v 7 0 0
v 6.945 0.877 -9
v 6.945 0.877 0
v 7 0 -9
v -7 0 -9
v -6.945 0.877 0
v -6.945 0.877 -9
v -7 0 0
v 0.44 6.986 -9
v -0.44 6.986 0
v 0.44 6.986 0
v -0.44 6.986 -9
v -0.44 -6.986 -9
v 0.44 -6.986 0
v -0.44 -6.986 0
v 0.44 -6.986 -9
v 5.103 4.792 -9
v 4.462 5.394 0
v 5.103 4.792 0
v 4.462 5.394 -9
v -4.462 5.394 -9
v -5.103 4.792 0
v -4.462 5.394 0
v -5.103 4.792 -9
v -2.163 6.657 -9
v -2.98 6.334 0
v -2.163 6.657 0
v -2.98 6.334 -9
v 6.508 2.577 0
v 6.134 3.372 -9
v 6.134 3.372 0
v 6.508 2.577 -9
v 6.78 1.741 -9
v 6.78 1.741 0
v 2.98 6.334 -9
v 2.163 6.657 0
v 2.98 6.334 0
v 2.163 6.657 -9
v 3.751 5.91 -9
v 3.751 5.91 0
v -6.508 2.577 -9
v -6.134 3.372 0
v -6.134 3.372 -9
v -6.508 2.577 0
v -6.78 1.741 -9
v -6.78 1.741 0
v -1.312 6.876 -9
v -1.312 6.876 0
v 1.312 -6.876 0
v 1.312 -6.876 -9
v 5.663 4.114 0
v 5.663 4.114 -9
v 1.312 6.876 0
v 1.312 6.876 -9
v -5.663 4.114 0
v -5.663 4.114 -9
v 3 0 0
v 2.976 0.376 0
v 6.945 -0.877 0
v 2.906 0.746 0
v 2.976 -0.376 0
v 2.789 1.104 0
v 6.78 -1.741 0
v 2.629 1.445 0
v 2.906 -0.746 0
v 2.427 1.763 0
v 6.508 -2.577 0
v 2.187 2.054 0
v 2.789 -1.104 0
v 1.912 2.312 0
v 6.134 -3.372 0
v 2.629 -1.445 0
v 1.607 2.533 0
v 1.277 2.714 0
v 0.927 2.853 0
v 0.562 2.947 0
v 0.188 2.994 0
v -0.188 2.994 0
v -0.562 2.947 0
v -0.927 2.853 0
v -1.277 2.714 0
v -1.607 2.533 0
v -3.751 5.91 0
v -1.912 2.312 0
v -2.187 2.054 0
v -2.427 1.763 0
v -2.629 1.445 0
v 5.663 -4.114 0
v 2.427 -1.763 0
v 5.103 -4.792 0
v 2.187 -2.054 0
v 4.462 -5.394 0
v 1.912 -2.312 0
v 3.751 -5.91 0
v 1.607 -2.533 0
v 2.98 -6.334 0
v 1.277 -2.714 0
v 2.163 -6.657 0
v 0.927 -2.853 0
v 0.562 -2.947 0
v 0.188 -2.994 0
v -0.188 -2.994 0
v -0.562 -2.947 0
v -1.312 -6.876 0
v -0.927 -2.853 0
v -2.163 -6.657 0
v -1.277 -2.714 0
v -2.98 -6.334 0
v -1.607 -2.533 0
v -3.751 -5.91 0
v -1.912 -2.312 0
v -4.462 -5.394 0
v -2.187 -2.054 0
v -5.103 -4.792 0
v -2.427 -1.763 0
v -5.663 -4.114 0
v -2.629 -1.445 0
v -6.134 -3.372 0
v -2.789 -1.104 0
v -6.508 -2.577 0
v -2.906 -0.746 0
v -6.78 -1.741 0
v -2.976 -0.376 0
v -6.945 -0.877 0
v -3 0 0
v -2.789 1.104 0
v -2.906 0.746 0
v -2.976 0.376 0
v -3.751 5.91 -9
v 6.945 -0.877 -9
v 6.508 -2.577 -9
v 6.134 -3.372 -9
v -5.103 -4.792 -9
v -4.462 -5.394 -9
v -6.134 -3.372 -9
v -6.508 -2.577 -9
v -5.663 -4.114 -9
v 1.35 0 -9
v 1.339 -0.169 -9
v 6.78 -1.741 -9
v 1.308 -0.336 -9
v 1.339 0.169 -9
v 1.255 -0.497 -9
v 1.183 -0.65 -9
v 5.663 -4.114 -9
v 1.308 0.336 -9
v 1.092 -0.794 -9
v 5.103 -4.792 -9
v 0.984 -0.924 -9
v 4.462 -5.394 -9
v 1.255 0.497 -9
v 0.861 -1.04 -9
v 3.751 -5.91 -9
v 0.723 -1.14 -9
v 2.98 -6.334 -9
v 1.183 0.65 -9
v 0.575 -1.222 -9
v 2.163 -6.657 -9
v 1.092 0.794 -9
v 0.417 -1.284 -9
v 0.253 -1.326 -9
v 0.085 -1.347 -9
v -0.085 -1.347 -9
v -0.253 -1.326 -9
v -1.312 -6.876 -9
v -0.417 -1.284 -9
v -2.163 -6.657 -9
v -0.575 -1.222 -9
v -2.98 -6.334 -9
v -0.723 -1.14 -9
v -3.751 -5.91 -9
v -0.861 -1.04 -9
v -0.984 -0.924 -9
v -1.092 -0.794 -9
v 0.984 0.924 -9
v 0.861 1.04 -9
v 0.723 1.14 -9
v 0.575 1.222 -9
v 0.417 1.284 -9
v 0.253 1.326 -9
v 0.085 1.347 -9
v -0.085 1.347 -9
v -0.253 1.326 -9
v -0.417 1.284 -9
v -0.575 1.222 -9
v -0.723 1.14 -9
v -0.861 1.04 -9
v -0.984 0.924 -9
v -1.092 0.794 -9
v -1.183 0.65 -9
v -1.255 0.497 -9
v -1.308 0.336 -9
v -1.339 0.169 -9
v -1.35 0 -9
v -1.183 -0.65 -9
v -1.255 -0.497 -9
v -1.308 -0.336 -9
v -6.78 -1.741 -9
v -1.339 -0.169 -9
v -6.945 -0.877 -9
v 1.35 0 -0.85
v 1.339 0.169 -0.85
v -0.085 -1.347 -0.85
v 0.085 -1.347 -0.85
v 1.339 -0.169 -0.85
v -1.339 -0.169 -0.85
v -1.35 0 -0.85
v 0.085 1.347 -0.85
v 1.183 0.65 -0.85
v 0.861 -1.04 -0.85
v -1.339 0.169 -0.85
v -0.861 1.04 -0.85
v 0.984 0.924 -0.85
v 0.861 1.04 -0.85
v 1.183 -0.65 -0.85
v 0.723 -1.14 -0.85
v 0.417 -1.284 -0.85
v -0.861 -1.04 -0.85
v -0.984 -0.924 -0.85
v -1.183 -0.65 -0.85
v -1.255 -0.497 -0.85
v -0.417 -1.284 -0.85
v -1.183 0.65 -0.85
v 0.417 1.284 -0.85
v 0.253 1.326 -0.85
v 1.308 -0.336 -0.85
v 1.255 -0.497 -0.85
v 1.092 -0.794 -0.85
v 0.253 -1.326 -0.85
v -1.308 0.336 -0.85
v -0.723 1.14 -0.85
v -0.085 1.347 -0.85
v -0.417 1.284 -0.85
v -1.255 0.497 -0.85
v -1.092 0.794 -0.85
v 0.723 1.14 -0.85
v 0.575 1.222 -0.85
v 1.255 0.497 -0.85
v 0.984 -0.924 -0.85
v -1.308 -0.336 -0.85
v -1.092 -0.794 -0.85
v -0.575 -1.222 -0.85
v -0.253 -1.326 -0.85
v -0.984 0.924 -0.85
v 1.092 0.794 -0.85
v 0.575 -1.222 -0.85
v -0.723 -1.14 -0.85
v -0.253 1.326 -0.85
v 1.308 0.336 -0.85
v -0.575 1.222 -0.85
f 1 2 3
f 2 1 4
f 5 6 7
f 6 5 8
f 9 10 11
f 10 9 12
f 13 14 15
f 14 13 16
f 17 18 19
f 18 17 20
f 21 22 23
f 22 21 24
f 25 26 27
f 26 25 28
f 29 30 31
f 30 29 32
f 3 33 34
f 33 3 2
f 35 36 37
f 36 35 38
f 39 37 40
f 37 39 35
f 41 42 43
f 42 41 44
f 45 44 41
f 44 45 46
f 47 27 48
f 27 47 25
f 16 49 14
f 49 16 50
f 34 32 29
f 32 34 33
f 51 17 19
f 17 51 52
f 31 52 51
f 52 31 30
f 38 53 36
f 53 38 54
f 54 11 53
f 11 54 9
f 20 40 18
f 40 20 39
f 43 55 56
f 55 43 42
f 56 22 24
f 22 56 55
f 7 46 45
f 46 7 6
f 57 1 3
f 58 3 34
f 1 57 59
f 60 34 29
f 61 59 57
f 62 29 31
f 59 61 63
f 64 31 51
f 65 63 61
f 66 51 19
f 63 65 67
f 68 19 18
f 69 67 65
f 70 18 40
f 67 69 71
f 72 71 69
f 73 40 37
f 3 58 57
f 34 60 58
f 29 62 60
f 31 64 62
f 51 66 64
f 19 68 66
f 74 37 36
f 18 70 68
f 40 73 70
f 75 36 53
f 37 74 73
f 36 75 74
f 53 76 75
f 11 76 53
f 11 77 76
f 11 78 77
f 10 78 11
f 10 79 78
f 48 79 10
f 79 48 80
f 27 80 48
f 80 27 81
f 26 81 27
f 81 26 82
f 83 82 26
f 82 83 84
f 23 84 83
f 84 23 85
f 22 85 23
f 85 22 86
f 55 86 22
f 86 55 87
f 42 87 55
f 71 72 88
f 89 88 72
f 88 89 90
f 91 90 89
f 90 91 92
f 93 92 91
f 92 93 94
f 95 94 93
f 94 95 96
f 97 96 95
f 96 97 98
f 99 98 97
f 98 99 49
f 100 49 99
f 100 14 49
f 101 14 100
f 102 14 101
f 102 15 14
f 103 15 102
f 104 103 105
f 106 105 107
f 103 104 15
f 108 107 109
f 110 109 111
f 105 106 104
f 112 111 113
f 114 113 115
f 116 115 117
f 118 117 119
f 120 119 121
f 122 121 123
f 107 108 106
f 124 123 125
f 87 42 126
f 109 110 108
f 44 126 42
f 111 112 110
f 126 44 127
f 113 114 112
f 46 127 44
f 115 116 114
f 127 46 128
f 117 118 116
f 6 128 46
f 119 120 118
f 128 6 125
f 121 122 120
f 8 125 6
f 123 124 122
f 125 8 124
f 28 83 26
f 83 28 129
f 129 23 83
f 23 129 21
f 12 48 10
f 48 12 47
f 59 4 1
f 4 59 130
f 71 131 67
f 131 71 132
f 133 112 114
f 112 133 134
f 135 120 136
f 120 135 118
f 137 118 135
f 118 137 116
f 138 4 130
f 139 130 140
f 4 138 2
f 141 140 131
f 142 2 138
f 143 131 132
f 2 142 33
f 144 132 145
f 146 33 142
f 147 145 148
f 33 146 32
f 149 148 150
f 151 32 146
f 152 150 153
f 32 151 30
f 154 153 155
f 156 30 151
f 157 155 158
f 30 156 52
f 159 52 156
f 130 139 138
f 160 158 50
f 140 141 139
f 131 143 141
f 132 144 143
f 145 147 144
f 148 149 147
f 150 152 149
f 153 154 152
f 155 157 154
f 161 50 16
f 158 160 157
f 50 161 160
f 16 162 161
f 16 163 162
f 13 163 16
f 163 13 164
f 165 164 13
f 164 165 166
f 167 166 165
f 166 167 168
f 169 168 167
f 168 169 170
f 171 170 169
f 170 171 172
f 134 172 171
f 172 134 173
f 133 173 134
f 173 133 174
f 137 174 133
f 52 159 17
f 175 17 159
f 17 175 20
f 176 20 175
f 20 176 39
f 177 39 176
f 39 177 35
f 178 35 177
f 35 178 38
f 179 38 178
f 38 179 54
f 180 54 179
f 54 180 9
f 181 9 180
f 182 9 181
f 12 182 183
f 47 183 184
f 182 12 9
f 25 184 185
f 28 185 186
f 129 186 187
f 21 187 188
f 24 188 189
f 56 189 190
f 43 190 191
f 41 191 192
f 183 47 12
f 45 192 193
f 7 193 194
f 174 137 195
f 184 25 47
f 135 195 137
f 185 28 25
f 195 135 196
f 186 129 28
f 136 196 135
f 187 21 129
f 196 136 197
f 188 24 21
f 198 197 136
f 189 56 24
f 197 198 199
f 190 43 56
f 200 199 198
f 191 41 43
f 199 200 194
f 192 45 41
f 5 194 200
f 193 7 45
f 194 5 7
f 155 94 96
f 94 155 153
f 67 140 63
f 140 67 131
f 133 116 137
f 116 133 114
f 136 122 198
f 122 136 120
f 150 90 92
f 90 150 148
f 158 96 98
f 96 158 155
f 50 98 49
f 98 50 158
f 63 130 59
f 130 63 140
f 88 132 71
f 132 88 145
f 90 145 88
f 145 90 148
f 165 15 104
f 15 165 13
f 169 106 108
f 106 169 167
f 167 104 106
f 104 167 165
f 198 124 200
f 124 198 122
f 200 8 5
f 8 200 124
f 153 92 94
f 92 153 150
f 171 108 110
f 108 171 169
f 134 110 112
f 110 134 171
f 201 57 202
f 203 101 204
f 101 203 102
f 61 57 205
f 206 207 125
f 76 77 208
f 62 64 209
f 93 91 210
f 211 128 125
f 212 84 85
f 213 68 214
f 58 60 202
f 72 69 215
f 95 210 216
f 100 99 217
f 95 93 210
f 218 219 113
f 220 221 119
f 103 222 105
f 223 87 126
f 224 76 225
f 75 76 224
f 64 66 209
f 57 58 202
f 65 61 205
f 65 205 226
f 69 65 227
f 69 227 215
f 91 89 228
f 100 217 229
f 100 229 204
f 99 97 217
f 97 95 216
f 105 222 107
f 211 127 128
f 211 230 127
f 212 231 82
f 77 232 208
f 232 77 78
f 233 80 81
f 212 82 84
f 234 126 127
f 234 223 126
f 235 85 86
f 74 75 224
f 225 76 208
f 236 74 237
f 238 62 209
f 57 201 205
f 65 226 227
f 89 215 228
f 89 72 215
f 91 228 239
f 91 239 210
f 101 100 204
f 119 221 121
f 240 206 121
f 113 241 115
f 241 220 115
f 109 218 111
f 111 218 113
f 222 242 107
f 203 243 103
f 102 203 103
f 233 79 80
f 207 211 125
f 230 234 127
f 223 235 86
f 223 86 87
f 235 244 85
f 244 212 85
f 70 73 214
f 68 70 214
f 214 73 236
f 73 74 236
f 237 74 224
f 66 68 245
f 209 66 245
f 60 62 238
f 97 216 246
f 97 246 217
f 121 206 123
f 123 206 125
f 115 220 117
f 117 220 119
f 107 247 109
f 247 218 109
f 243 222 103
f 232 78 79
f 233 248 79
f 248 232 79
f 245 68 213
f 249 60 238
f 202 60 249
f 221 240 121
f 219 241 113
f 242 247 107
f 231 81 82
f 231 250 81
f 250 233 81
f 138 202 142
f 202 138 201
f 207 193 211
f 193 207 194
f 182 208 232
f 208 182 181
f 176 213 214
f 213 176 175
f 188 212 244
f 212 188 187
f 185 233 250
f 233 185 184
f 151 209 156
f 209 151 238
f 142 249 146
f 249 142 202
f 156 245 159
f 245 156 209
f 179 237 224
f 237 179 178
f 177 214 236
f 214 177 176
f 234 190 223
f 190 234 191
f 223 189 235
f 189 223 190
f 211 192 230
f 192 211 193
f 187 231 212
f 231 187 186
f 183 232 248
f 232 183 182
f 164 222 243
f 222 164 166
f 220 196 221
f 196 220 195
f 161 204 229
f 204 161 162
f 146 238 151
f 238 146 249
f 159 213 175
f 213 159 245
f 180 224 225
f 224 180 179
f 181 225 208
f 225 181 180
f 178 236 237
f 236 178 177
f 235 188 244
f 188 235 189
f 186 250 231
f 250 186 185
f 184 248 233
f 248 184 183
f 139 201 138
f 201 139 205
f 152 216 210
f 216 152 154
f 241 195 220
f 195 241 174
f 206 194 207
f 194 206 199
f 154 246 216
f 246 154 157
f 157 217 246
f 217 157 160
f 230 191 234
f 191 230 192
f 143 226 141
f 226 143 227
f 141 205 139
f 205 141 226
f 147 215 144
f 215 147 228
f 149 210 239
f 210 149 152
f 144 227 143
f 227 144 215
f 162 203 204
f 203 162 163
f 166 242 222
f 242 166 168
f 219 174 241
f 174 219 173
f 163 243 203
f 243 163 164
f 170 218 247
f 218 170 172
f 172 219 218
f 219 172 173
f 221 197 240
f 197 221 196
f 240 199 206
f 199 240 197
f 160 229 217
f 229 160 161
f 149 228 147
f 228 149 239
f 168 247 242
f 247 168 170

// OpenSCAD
$fn = 50;


difference() {
	union() {
		translate(v = [0, 0, -9.0000000000]) {
			cylinder(h = 9, r = 7.0000000000);
		}
		translate(v = [0, 0, -9.0000000000]) {
			cylinder(h = 9, r = 2.8750000000);
		}
	}
	union() {
		translate(v = [0, 0, 0]) {
			rotate(a = [0, 0, 0]) {
				difference() {
					union() {
						#translate(v = [0, 0, -9.0000000000]) {
							cylinder(h = 9, r = 1.0000000000);
						}
						#translate(v = [0, 0, -0.8500000000]) {
							cylinder(h = 0.8500000000, r1 = 1.3500000000, r2 = 3.0000000000);
						}
						#translate(v = [0, 0, -9.0000000000]) {
							cylinder(h = 9, r = 1.3500000000);
						}
						#translate(v = [0, 0, -9.0000000000]) {
							cylinder(h = 9, r = 1.0000000000);
						}
					}
					union();
				}
			}
		}
	}
}
